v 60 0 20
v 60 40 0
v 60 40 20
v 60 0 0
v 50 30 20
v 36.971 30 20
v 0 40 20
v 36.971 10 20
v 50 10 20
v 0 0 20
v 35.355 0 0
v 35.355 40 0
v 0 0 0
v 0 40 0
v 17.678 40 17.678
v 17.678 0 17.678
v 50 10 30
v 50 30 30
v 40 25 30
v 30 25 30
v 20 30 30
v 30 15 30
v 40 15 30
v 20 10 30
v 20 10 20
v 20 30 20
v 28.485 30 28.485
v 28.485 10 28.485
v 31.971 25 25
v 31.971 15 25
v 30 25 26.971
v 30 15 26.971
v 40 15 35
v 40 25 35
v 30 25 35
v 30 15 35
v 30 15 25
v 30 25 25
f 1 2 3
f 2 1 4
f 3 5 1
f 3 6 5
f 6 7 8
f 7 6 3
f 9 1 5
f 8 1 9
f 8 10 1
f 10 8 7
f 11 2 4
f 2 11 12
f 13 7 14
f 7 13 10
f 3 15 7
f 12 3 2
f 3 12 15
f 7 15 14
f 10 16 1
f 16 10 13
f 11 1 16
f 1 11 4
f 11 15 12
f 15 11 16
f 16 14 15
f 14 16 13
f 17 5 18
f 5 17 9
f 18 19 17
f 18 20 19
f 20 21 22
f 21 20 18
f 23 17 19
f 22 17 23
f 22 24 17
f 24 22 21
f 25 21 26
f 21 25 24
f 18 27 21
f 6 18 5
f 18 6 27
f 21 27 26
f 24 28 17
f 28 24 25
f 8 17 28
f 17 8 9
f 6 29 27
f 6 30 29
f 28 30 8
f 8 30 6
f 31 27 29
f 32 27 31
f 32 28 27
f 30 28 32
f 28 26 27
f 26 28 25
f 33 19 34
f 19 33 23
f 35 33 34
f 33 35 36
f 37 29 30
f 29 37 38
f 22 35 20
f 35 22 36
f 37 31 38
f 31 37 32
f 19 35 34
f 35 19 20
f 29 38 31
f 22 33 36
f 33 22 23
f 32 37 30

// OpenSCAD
// Base block
module base_block() {
    difference() {
        // Main rectangular block
        cube([60, 40, 20], center = false);
        // Adjusted slanted cut to match the original model
        translate([0, 0, 0])
            rotate([0, 45, 0]) // Adjusted angle back to 45 degrees
            cube([60, 40, 25], center = false); // Adjusted depth to match the original model
    }
}

// Inclined block
module inclined_block() {
    difference() {
        // Main block
        translate([20, 10, 20]) // Adjusted position to align with the original model
            cube([30, 20, 10], center = false);
        // Adjusted inclined surface
        translate([20, 10, 20]) // Adjusted position to align with the original model
            rotate([0, 45, 0]) // Adjusted angle back to 45 degrees
            cube([30, 20, 12], center = false); // Adjusted depth to match the original model
    }
}

// Small rectangular block
module small_rectangular_block() {
    // Adjusted position to fit snugly within the recess of the base block
    translate([30, 15, 25]) // Lowered and repositioned to align with the original model
        cube([10, 10, 10], center = false);
}

// Assembly
module assembly() {
    base_block();
    inclined_block();
    small_rectangular_block();
}

// Render the assembly
assembly();
